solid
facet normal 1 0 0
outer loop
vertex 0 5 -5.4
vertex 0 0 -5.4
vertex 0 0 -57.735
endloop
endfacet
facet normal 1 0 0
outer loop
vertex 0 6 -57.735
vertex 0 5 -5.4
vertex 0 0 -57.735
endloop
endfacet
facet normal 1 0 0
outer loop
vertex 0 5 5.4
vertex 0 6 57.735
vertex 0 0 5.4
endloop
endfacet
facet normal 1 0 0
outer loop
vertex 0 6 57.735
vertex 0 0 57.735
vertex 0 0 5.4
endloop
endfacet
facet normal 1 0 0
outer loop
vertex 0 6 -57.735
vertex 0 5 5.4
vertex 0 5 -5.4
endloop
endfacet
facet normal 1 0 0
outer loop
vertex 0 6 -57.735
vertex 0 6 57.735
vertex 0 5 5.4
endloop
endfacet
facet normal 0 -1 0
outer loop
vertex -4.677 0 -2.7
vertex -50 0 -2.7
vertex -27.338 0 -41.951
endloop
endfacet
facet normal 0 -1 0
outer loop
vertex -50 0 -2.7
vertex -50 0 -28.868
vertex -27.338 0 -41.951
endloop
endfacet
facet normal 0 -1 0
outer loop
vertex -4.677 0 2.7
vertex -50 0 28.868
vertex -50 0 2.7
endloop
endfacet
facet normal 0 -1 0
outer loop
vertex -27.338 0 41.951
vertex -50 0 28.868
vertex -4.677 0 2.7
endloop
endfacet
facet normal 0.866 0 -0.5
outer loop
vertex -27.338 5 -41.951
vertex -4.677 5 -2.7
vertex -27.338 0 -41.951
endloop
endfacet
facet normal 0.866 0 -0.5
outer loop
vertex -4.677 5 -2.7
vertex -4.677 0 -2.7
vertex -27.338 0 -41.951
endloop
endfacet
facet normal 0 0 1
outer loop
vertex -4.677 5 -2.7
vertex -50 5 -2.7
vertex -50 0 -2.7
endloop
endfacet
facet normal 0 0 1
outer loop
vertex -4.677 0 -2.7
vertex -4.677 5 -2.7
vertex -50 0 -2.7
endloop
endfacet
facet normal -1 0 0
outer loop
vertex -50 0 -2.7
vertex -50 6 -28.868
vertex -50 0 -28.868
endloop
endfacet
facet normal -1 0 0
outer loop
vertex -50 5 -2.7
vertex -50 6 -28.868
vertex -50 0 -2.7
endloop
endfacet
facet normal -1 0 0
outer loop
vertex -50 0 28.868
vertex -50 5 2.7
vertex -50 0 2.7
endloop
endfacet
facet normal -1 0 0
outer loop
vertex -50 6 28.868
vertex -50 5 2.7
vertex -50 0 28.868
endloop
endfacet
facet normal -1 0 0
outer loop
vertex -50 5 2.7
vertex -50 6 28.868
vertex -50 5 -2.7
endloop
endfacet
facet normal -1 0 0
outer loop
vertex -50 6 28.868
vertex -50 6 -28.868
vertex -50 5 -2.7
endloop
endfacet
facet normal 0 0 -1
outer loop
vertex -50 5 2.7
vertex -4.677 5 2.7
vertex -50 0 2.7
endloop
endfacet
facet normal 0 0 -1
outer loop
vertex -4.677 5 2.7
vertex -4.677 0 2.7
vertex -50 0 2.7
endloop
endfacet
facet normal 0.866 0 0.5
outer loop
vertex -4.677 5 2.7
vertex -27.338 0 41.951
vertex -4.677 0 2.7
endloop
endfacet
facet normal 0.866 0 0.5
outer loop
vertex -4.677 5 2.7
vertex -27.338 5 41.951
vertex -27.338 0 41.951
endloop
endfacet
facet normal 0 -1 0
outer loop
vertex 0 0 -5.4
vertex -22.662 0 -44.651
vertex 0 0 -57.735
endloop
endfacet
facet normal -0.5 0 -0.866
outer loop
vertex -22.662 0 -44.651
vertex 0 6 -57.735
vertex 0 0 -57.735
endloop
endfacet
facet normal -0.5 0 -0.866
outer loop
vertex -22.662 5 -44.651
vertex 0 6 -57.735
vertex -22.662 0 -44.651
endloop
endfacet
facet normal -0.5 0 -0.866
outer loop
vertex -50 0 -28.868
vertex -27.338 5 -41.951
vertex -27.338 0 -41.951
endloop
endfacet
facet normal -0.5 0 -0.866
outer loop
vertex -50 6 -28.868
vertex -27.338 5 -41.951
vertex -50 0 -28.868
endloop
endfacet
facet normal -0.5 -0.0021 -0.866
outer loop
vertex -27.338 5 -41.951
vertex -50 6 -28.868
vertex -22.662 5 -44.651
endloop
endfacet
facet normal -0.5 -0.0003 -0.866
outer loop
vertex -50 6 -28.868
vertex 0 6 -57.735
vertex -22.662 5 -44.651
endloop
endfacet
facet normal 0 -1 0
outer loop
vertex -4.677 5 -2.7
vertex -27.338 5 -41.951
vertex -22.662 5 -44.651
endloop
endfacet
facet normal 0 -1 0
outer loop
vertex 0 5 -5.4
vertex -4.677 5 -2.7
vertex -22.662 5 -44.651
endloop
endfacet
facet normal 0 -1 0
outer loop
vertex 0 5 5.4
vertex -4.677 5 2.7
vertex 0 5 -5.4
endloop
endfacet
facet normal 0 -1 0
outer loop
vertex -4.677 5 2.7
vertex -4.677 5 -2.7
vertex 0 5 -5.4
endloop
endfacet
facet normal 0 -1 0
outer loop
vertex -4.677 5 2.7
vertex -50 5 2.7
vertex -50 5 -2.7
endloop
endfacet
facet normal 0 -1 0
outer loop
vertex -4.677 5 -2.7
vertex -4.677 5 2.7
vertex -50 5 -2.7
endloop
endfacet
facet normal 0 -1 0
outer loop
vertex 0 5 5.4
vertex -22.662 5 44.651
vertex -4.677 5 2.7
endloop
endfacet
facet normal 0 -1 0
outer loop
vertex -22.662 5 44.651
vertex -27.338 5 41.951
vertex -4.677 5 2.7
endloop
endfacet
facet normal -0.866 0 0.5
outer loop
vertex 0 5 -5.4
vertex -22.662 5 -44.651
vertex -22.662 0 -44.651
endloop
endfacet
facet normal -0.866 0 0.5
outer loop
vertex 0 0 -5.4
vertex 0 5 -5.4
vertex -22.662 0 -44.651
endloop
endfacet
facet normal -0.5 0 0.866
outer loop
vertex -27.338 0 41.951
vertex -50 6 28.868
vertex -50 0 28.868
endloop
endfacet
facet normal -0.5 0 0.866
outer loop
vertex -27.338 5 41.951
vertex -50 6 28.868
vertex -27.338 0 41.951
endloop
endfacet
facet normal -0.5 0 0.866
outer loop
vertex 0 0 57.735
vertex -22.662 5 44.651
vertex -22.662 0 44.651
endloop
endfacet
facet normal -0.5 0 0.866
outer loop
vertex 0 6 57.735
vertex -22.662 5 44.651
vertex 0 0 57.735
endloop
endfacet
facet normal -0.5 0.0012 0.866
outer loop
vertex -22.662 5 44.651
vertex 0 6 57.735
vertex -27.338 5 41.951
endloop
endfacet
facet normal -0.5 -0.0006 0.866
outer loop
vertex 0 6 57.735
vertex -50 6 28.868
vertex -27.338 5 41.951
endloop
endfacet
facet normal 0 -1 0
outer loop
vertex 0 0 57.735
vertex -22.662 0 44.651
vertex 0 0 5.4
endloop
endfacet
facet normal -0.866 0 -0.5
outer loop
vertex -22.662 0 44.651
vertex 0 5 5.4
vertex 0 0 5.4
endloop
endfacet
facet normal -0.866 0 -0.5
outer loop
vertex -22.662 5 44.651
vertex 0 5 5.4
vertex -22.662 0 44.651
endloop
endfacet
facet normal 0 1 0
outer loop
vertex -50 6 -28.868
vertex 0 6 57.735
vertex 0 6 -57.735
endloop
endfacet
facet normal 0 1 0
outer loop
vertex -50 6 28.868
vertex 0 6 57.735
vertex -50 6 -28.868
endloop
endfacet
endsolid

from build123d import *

# Parameters (mm, degrees)
BOSS_EXTRUDE1_DEPTH     = 6
SKETCH2_W               = 100
SKETCH2_H               = 5.4
CUT_EXTRUDE_THIN1_DEPTH = 5
INTERSECT1_DEPTH        = 50


# Read off the part's stored shape, not the designer's step: Intersect1
with BuildPart() as part:
    # Sketch1 → Boss-Extrude1 (new body)
    with BuildSketch(Plane(origin=(0, 0, 0), x_dir=(1, 0, 0), z_dir=(0, 1, 0))):
        Polygon((0, 57.735026919), (-50, 28.867513459), (-50, -28.867513459), (0, -57.735026919), (50, -28.867513459), (50, 28.867513459), align=None)
    extrude(amount=BOSS_EXTRUDE1_DEPTH)

    # Sketch2 → Cut-Extrude-Thin1 (cut)
    with BuildSketch(Plane.XZ):
        Polygon((-27.33826859, 41.951270189), (22.66173141, -44.651270189), (27.33826859, -41.951270189), (-22.66173141, 44.651270189), align=None)
        Polygon((22.66173141, 44.651270189), (-27.33826859, -41.951270189), (-22.66173141, -44.651270189), (27.33826859, 41.951270189), align=None)
        Rectangle(SKETCH2_W, SKETCH2_H)
    extrude(amount=-CUT_EXTRUDE_THIN1_DEPTH, mode=Mode.SUBTRACT)

    # Intersect1 outline → Intersect1 (cut)
    with BuildSketch(Plane.YZ):
        Polygon((0, 2.7), (5, 2.7), (5, -2.7), (0, -2.7), (0, -59), (6, -59), (6, 59), (0, 59), align=None)
    extrude(amount=INTERSECT1_DEPTH, mode=Mode.SUBTRACT)


solid = part.part
